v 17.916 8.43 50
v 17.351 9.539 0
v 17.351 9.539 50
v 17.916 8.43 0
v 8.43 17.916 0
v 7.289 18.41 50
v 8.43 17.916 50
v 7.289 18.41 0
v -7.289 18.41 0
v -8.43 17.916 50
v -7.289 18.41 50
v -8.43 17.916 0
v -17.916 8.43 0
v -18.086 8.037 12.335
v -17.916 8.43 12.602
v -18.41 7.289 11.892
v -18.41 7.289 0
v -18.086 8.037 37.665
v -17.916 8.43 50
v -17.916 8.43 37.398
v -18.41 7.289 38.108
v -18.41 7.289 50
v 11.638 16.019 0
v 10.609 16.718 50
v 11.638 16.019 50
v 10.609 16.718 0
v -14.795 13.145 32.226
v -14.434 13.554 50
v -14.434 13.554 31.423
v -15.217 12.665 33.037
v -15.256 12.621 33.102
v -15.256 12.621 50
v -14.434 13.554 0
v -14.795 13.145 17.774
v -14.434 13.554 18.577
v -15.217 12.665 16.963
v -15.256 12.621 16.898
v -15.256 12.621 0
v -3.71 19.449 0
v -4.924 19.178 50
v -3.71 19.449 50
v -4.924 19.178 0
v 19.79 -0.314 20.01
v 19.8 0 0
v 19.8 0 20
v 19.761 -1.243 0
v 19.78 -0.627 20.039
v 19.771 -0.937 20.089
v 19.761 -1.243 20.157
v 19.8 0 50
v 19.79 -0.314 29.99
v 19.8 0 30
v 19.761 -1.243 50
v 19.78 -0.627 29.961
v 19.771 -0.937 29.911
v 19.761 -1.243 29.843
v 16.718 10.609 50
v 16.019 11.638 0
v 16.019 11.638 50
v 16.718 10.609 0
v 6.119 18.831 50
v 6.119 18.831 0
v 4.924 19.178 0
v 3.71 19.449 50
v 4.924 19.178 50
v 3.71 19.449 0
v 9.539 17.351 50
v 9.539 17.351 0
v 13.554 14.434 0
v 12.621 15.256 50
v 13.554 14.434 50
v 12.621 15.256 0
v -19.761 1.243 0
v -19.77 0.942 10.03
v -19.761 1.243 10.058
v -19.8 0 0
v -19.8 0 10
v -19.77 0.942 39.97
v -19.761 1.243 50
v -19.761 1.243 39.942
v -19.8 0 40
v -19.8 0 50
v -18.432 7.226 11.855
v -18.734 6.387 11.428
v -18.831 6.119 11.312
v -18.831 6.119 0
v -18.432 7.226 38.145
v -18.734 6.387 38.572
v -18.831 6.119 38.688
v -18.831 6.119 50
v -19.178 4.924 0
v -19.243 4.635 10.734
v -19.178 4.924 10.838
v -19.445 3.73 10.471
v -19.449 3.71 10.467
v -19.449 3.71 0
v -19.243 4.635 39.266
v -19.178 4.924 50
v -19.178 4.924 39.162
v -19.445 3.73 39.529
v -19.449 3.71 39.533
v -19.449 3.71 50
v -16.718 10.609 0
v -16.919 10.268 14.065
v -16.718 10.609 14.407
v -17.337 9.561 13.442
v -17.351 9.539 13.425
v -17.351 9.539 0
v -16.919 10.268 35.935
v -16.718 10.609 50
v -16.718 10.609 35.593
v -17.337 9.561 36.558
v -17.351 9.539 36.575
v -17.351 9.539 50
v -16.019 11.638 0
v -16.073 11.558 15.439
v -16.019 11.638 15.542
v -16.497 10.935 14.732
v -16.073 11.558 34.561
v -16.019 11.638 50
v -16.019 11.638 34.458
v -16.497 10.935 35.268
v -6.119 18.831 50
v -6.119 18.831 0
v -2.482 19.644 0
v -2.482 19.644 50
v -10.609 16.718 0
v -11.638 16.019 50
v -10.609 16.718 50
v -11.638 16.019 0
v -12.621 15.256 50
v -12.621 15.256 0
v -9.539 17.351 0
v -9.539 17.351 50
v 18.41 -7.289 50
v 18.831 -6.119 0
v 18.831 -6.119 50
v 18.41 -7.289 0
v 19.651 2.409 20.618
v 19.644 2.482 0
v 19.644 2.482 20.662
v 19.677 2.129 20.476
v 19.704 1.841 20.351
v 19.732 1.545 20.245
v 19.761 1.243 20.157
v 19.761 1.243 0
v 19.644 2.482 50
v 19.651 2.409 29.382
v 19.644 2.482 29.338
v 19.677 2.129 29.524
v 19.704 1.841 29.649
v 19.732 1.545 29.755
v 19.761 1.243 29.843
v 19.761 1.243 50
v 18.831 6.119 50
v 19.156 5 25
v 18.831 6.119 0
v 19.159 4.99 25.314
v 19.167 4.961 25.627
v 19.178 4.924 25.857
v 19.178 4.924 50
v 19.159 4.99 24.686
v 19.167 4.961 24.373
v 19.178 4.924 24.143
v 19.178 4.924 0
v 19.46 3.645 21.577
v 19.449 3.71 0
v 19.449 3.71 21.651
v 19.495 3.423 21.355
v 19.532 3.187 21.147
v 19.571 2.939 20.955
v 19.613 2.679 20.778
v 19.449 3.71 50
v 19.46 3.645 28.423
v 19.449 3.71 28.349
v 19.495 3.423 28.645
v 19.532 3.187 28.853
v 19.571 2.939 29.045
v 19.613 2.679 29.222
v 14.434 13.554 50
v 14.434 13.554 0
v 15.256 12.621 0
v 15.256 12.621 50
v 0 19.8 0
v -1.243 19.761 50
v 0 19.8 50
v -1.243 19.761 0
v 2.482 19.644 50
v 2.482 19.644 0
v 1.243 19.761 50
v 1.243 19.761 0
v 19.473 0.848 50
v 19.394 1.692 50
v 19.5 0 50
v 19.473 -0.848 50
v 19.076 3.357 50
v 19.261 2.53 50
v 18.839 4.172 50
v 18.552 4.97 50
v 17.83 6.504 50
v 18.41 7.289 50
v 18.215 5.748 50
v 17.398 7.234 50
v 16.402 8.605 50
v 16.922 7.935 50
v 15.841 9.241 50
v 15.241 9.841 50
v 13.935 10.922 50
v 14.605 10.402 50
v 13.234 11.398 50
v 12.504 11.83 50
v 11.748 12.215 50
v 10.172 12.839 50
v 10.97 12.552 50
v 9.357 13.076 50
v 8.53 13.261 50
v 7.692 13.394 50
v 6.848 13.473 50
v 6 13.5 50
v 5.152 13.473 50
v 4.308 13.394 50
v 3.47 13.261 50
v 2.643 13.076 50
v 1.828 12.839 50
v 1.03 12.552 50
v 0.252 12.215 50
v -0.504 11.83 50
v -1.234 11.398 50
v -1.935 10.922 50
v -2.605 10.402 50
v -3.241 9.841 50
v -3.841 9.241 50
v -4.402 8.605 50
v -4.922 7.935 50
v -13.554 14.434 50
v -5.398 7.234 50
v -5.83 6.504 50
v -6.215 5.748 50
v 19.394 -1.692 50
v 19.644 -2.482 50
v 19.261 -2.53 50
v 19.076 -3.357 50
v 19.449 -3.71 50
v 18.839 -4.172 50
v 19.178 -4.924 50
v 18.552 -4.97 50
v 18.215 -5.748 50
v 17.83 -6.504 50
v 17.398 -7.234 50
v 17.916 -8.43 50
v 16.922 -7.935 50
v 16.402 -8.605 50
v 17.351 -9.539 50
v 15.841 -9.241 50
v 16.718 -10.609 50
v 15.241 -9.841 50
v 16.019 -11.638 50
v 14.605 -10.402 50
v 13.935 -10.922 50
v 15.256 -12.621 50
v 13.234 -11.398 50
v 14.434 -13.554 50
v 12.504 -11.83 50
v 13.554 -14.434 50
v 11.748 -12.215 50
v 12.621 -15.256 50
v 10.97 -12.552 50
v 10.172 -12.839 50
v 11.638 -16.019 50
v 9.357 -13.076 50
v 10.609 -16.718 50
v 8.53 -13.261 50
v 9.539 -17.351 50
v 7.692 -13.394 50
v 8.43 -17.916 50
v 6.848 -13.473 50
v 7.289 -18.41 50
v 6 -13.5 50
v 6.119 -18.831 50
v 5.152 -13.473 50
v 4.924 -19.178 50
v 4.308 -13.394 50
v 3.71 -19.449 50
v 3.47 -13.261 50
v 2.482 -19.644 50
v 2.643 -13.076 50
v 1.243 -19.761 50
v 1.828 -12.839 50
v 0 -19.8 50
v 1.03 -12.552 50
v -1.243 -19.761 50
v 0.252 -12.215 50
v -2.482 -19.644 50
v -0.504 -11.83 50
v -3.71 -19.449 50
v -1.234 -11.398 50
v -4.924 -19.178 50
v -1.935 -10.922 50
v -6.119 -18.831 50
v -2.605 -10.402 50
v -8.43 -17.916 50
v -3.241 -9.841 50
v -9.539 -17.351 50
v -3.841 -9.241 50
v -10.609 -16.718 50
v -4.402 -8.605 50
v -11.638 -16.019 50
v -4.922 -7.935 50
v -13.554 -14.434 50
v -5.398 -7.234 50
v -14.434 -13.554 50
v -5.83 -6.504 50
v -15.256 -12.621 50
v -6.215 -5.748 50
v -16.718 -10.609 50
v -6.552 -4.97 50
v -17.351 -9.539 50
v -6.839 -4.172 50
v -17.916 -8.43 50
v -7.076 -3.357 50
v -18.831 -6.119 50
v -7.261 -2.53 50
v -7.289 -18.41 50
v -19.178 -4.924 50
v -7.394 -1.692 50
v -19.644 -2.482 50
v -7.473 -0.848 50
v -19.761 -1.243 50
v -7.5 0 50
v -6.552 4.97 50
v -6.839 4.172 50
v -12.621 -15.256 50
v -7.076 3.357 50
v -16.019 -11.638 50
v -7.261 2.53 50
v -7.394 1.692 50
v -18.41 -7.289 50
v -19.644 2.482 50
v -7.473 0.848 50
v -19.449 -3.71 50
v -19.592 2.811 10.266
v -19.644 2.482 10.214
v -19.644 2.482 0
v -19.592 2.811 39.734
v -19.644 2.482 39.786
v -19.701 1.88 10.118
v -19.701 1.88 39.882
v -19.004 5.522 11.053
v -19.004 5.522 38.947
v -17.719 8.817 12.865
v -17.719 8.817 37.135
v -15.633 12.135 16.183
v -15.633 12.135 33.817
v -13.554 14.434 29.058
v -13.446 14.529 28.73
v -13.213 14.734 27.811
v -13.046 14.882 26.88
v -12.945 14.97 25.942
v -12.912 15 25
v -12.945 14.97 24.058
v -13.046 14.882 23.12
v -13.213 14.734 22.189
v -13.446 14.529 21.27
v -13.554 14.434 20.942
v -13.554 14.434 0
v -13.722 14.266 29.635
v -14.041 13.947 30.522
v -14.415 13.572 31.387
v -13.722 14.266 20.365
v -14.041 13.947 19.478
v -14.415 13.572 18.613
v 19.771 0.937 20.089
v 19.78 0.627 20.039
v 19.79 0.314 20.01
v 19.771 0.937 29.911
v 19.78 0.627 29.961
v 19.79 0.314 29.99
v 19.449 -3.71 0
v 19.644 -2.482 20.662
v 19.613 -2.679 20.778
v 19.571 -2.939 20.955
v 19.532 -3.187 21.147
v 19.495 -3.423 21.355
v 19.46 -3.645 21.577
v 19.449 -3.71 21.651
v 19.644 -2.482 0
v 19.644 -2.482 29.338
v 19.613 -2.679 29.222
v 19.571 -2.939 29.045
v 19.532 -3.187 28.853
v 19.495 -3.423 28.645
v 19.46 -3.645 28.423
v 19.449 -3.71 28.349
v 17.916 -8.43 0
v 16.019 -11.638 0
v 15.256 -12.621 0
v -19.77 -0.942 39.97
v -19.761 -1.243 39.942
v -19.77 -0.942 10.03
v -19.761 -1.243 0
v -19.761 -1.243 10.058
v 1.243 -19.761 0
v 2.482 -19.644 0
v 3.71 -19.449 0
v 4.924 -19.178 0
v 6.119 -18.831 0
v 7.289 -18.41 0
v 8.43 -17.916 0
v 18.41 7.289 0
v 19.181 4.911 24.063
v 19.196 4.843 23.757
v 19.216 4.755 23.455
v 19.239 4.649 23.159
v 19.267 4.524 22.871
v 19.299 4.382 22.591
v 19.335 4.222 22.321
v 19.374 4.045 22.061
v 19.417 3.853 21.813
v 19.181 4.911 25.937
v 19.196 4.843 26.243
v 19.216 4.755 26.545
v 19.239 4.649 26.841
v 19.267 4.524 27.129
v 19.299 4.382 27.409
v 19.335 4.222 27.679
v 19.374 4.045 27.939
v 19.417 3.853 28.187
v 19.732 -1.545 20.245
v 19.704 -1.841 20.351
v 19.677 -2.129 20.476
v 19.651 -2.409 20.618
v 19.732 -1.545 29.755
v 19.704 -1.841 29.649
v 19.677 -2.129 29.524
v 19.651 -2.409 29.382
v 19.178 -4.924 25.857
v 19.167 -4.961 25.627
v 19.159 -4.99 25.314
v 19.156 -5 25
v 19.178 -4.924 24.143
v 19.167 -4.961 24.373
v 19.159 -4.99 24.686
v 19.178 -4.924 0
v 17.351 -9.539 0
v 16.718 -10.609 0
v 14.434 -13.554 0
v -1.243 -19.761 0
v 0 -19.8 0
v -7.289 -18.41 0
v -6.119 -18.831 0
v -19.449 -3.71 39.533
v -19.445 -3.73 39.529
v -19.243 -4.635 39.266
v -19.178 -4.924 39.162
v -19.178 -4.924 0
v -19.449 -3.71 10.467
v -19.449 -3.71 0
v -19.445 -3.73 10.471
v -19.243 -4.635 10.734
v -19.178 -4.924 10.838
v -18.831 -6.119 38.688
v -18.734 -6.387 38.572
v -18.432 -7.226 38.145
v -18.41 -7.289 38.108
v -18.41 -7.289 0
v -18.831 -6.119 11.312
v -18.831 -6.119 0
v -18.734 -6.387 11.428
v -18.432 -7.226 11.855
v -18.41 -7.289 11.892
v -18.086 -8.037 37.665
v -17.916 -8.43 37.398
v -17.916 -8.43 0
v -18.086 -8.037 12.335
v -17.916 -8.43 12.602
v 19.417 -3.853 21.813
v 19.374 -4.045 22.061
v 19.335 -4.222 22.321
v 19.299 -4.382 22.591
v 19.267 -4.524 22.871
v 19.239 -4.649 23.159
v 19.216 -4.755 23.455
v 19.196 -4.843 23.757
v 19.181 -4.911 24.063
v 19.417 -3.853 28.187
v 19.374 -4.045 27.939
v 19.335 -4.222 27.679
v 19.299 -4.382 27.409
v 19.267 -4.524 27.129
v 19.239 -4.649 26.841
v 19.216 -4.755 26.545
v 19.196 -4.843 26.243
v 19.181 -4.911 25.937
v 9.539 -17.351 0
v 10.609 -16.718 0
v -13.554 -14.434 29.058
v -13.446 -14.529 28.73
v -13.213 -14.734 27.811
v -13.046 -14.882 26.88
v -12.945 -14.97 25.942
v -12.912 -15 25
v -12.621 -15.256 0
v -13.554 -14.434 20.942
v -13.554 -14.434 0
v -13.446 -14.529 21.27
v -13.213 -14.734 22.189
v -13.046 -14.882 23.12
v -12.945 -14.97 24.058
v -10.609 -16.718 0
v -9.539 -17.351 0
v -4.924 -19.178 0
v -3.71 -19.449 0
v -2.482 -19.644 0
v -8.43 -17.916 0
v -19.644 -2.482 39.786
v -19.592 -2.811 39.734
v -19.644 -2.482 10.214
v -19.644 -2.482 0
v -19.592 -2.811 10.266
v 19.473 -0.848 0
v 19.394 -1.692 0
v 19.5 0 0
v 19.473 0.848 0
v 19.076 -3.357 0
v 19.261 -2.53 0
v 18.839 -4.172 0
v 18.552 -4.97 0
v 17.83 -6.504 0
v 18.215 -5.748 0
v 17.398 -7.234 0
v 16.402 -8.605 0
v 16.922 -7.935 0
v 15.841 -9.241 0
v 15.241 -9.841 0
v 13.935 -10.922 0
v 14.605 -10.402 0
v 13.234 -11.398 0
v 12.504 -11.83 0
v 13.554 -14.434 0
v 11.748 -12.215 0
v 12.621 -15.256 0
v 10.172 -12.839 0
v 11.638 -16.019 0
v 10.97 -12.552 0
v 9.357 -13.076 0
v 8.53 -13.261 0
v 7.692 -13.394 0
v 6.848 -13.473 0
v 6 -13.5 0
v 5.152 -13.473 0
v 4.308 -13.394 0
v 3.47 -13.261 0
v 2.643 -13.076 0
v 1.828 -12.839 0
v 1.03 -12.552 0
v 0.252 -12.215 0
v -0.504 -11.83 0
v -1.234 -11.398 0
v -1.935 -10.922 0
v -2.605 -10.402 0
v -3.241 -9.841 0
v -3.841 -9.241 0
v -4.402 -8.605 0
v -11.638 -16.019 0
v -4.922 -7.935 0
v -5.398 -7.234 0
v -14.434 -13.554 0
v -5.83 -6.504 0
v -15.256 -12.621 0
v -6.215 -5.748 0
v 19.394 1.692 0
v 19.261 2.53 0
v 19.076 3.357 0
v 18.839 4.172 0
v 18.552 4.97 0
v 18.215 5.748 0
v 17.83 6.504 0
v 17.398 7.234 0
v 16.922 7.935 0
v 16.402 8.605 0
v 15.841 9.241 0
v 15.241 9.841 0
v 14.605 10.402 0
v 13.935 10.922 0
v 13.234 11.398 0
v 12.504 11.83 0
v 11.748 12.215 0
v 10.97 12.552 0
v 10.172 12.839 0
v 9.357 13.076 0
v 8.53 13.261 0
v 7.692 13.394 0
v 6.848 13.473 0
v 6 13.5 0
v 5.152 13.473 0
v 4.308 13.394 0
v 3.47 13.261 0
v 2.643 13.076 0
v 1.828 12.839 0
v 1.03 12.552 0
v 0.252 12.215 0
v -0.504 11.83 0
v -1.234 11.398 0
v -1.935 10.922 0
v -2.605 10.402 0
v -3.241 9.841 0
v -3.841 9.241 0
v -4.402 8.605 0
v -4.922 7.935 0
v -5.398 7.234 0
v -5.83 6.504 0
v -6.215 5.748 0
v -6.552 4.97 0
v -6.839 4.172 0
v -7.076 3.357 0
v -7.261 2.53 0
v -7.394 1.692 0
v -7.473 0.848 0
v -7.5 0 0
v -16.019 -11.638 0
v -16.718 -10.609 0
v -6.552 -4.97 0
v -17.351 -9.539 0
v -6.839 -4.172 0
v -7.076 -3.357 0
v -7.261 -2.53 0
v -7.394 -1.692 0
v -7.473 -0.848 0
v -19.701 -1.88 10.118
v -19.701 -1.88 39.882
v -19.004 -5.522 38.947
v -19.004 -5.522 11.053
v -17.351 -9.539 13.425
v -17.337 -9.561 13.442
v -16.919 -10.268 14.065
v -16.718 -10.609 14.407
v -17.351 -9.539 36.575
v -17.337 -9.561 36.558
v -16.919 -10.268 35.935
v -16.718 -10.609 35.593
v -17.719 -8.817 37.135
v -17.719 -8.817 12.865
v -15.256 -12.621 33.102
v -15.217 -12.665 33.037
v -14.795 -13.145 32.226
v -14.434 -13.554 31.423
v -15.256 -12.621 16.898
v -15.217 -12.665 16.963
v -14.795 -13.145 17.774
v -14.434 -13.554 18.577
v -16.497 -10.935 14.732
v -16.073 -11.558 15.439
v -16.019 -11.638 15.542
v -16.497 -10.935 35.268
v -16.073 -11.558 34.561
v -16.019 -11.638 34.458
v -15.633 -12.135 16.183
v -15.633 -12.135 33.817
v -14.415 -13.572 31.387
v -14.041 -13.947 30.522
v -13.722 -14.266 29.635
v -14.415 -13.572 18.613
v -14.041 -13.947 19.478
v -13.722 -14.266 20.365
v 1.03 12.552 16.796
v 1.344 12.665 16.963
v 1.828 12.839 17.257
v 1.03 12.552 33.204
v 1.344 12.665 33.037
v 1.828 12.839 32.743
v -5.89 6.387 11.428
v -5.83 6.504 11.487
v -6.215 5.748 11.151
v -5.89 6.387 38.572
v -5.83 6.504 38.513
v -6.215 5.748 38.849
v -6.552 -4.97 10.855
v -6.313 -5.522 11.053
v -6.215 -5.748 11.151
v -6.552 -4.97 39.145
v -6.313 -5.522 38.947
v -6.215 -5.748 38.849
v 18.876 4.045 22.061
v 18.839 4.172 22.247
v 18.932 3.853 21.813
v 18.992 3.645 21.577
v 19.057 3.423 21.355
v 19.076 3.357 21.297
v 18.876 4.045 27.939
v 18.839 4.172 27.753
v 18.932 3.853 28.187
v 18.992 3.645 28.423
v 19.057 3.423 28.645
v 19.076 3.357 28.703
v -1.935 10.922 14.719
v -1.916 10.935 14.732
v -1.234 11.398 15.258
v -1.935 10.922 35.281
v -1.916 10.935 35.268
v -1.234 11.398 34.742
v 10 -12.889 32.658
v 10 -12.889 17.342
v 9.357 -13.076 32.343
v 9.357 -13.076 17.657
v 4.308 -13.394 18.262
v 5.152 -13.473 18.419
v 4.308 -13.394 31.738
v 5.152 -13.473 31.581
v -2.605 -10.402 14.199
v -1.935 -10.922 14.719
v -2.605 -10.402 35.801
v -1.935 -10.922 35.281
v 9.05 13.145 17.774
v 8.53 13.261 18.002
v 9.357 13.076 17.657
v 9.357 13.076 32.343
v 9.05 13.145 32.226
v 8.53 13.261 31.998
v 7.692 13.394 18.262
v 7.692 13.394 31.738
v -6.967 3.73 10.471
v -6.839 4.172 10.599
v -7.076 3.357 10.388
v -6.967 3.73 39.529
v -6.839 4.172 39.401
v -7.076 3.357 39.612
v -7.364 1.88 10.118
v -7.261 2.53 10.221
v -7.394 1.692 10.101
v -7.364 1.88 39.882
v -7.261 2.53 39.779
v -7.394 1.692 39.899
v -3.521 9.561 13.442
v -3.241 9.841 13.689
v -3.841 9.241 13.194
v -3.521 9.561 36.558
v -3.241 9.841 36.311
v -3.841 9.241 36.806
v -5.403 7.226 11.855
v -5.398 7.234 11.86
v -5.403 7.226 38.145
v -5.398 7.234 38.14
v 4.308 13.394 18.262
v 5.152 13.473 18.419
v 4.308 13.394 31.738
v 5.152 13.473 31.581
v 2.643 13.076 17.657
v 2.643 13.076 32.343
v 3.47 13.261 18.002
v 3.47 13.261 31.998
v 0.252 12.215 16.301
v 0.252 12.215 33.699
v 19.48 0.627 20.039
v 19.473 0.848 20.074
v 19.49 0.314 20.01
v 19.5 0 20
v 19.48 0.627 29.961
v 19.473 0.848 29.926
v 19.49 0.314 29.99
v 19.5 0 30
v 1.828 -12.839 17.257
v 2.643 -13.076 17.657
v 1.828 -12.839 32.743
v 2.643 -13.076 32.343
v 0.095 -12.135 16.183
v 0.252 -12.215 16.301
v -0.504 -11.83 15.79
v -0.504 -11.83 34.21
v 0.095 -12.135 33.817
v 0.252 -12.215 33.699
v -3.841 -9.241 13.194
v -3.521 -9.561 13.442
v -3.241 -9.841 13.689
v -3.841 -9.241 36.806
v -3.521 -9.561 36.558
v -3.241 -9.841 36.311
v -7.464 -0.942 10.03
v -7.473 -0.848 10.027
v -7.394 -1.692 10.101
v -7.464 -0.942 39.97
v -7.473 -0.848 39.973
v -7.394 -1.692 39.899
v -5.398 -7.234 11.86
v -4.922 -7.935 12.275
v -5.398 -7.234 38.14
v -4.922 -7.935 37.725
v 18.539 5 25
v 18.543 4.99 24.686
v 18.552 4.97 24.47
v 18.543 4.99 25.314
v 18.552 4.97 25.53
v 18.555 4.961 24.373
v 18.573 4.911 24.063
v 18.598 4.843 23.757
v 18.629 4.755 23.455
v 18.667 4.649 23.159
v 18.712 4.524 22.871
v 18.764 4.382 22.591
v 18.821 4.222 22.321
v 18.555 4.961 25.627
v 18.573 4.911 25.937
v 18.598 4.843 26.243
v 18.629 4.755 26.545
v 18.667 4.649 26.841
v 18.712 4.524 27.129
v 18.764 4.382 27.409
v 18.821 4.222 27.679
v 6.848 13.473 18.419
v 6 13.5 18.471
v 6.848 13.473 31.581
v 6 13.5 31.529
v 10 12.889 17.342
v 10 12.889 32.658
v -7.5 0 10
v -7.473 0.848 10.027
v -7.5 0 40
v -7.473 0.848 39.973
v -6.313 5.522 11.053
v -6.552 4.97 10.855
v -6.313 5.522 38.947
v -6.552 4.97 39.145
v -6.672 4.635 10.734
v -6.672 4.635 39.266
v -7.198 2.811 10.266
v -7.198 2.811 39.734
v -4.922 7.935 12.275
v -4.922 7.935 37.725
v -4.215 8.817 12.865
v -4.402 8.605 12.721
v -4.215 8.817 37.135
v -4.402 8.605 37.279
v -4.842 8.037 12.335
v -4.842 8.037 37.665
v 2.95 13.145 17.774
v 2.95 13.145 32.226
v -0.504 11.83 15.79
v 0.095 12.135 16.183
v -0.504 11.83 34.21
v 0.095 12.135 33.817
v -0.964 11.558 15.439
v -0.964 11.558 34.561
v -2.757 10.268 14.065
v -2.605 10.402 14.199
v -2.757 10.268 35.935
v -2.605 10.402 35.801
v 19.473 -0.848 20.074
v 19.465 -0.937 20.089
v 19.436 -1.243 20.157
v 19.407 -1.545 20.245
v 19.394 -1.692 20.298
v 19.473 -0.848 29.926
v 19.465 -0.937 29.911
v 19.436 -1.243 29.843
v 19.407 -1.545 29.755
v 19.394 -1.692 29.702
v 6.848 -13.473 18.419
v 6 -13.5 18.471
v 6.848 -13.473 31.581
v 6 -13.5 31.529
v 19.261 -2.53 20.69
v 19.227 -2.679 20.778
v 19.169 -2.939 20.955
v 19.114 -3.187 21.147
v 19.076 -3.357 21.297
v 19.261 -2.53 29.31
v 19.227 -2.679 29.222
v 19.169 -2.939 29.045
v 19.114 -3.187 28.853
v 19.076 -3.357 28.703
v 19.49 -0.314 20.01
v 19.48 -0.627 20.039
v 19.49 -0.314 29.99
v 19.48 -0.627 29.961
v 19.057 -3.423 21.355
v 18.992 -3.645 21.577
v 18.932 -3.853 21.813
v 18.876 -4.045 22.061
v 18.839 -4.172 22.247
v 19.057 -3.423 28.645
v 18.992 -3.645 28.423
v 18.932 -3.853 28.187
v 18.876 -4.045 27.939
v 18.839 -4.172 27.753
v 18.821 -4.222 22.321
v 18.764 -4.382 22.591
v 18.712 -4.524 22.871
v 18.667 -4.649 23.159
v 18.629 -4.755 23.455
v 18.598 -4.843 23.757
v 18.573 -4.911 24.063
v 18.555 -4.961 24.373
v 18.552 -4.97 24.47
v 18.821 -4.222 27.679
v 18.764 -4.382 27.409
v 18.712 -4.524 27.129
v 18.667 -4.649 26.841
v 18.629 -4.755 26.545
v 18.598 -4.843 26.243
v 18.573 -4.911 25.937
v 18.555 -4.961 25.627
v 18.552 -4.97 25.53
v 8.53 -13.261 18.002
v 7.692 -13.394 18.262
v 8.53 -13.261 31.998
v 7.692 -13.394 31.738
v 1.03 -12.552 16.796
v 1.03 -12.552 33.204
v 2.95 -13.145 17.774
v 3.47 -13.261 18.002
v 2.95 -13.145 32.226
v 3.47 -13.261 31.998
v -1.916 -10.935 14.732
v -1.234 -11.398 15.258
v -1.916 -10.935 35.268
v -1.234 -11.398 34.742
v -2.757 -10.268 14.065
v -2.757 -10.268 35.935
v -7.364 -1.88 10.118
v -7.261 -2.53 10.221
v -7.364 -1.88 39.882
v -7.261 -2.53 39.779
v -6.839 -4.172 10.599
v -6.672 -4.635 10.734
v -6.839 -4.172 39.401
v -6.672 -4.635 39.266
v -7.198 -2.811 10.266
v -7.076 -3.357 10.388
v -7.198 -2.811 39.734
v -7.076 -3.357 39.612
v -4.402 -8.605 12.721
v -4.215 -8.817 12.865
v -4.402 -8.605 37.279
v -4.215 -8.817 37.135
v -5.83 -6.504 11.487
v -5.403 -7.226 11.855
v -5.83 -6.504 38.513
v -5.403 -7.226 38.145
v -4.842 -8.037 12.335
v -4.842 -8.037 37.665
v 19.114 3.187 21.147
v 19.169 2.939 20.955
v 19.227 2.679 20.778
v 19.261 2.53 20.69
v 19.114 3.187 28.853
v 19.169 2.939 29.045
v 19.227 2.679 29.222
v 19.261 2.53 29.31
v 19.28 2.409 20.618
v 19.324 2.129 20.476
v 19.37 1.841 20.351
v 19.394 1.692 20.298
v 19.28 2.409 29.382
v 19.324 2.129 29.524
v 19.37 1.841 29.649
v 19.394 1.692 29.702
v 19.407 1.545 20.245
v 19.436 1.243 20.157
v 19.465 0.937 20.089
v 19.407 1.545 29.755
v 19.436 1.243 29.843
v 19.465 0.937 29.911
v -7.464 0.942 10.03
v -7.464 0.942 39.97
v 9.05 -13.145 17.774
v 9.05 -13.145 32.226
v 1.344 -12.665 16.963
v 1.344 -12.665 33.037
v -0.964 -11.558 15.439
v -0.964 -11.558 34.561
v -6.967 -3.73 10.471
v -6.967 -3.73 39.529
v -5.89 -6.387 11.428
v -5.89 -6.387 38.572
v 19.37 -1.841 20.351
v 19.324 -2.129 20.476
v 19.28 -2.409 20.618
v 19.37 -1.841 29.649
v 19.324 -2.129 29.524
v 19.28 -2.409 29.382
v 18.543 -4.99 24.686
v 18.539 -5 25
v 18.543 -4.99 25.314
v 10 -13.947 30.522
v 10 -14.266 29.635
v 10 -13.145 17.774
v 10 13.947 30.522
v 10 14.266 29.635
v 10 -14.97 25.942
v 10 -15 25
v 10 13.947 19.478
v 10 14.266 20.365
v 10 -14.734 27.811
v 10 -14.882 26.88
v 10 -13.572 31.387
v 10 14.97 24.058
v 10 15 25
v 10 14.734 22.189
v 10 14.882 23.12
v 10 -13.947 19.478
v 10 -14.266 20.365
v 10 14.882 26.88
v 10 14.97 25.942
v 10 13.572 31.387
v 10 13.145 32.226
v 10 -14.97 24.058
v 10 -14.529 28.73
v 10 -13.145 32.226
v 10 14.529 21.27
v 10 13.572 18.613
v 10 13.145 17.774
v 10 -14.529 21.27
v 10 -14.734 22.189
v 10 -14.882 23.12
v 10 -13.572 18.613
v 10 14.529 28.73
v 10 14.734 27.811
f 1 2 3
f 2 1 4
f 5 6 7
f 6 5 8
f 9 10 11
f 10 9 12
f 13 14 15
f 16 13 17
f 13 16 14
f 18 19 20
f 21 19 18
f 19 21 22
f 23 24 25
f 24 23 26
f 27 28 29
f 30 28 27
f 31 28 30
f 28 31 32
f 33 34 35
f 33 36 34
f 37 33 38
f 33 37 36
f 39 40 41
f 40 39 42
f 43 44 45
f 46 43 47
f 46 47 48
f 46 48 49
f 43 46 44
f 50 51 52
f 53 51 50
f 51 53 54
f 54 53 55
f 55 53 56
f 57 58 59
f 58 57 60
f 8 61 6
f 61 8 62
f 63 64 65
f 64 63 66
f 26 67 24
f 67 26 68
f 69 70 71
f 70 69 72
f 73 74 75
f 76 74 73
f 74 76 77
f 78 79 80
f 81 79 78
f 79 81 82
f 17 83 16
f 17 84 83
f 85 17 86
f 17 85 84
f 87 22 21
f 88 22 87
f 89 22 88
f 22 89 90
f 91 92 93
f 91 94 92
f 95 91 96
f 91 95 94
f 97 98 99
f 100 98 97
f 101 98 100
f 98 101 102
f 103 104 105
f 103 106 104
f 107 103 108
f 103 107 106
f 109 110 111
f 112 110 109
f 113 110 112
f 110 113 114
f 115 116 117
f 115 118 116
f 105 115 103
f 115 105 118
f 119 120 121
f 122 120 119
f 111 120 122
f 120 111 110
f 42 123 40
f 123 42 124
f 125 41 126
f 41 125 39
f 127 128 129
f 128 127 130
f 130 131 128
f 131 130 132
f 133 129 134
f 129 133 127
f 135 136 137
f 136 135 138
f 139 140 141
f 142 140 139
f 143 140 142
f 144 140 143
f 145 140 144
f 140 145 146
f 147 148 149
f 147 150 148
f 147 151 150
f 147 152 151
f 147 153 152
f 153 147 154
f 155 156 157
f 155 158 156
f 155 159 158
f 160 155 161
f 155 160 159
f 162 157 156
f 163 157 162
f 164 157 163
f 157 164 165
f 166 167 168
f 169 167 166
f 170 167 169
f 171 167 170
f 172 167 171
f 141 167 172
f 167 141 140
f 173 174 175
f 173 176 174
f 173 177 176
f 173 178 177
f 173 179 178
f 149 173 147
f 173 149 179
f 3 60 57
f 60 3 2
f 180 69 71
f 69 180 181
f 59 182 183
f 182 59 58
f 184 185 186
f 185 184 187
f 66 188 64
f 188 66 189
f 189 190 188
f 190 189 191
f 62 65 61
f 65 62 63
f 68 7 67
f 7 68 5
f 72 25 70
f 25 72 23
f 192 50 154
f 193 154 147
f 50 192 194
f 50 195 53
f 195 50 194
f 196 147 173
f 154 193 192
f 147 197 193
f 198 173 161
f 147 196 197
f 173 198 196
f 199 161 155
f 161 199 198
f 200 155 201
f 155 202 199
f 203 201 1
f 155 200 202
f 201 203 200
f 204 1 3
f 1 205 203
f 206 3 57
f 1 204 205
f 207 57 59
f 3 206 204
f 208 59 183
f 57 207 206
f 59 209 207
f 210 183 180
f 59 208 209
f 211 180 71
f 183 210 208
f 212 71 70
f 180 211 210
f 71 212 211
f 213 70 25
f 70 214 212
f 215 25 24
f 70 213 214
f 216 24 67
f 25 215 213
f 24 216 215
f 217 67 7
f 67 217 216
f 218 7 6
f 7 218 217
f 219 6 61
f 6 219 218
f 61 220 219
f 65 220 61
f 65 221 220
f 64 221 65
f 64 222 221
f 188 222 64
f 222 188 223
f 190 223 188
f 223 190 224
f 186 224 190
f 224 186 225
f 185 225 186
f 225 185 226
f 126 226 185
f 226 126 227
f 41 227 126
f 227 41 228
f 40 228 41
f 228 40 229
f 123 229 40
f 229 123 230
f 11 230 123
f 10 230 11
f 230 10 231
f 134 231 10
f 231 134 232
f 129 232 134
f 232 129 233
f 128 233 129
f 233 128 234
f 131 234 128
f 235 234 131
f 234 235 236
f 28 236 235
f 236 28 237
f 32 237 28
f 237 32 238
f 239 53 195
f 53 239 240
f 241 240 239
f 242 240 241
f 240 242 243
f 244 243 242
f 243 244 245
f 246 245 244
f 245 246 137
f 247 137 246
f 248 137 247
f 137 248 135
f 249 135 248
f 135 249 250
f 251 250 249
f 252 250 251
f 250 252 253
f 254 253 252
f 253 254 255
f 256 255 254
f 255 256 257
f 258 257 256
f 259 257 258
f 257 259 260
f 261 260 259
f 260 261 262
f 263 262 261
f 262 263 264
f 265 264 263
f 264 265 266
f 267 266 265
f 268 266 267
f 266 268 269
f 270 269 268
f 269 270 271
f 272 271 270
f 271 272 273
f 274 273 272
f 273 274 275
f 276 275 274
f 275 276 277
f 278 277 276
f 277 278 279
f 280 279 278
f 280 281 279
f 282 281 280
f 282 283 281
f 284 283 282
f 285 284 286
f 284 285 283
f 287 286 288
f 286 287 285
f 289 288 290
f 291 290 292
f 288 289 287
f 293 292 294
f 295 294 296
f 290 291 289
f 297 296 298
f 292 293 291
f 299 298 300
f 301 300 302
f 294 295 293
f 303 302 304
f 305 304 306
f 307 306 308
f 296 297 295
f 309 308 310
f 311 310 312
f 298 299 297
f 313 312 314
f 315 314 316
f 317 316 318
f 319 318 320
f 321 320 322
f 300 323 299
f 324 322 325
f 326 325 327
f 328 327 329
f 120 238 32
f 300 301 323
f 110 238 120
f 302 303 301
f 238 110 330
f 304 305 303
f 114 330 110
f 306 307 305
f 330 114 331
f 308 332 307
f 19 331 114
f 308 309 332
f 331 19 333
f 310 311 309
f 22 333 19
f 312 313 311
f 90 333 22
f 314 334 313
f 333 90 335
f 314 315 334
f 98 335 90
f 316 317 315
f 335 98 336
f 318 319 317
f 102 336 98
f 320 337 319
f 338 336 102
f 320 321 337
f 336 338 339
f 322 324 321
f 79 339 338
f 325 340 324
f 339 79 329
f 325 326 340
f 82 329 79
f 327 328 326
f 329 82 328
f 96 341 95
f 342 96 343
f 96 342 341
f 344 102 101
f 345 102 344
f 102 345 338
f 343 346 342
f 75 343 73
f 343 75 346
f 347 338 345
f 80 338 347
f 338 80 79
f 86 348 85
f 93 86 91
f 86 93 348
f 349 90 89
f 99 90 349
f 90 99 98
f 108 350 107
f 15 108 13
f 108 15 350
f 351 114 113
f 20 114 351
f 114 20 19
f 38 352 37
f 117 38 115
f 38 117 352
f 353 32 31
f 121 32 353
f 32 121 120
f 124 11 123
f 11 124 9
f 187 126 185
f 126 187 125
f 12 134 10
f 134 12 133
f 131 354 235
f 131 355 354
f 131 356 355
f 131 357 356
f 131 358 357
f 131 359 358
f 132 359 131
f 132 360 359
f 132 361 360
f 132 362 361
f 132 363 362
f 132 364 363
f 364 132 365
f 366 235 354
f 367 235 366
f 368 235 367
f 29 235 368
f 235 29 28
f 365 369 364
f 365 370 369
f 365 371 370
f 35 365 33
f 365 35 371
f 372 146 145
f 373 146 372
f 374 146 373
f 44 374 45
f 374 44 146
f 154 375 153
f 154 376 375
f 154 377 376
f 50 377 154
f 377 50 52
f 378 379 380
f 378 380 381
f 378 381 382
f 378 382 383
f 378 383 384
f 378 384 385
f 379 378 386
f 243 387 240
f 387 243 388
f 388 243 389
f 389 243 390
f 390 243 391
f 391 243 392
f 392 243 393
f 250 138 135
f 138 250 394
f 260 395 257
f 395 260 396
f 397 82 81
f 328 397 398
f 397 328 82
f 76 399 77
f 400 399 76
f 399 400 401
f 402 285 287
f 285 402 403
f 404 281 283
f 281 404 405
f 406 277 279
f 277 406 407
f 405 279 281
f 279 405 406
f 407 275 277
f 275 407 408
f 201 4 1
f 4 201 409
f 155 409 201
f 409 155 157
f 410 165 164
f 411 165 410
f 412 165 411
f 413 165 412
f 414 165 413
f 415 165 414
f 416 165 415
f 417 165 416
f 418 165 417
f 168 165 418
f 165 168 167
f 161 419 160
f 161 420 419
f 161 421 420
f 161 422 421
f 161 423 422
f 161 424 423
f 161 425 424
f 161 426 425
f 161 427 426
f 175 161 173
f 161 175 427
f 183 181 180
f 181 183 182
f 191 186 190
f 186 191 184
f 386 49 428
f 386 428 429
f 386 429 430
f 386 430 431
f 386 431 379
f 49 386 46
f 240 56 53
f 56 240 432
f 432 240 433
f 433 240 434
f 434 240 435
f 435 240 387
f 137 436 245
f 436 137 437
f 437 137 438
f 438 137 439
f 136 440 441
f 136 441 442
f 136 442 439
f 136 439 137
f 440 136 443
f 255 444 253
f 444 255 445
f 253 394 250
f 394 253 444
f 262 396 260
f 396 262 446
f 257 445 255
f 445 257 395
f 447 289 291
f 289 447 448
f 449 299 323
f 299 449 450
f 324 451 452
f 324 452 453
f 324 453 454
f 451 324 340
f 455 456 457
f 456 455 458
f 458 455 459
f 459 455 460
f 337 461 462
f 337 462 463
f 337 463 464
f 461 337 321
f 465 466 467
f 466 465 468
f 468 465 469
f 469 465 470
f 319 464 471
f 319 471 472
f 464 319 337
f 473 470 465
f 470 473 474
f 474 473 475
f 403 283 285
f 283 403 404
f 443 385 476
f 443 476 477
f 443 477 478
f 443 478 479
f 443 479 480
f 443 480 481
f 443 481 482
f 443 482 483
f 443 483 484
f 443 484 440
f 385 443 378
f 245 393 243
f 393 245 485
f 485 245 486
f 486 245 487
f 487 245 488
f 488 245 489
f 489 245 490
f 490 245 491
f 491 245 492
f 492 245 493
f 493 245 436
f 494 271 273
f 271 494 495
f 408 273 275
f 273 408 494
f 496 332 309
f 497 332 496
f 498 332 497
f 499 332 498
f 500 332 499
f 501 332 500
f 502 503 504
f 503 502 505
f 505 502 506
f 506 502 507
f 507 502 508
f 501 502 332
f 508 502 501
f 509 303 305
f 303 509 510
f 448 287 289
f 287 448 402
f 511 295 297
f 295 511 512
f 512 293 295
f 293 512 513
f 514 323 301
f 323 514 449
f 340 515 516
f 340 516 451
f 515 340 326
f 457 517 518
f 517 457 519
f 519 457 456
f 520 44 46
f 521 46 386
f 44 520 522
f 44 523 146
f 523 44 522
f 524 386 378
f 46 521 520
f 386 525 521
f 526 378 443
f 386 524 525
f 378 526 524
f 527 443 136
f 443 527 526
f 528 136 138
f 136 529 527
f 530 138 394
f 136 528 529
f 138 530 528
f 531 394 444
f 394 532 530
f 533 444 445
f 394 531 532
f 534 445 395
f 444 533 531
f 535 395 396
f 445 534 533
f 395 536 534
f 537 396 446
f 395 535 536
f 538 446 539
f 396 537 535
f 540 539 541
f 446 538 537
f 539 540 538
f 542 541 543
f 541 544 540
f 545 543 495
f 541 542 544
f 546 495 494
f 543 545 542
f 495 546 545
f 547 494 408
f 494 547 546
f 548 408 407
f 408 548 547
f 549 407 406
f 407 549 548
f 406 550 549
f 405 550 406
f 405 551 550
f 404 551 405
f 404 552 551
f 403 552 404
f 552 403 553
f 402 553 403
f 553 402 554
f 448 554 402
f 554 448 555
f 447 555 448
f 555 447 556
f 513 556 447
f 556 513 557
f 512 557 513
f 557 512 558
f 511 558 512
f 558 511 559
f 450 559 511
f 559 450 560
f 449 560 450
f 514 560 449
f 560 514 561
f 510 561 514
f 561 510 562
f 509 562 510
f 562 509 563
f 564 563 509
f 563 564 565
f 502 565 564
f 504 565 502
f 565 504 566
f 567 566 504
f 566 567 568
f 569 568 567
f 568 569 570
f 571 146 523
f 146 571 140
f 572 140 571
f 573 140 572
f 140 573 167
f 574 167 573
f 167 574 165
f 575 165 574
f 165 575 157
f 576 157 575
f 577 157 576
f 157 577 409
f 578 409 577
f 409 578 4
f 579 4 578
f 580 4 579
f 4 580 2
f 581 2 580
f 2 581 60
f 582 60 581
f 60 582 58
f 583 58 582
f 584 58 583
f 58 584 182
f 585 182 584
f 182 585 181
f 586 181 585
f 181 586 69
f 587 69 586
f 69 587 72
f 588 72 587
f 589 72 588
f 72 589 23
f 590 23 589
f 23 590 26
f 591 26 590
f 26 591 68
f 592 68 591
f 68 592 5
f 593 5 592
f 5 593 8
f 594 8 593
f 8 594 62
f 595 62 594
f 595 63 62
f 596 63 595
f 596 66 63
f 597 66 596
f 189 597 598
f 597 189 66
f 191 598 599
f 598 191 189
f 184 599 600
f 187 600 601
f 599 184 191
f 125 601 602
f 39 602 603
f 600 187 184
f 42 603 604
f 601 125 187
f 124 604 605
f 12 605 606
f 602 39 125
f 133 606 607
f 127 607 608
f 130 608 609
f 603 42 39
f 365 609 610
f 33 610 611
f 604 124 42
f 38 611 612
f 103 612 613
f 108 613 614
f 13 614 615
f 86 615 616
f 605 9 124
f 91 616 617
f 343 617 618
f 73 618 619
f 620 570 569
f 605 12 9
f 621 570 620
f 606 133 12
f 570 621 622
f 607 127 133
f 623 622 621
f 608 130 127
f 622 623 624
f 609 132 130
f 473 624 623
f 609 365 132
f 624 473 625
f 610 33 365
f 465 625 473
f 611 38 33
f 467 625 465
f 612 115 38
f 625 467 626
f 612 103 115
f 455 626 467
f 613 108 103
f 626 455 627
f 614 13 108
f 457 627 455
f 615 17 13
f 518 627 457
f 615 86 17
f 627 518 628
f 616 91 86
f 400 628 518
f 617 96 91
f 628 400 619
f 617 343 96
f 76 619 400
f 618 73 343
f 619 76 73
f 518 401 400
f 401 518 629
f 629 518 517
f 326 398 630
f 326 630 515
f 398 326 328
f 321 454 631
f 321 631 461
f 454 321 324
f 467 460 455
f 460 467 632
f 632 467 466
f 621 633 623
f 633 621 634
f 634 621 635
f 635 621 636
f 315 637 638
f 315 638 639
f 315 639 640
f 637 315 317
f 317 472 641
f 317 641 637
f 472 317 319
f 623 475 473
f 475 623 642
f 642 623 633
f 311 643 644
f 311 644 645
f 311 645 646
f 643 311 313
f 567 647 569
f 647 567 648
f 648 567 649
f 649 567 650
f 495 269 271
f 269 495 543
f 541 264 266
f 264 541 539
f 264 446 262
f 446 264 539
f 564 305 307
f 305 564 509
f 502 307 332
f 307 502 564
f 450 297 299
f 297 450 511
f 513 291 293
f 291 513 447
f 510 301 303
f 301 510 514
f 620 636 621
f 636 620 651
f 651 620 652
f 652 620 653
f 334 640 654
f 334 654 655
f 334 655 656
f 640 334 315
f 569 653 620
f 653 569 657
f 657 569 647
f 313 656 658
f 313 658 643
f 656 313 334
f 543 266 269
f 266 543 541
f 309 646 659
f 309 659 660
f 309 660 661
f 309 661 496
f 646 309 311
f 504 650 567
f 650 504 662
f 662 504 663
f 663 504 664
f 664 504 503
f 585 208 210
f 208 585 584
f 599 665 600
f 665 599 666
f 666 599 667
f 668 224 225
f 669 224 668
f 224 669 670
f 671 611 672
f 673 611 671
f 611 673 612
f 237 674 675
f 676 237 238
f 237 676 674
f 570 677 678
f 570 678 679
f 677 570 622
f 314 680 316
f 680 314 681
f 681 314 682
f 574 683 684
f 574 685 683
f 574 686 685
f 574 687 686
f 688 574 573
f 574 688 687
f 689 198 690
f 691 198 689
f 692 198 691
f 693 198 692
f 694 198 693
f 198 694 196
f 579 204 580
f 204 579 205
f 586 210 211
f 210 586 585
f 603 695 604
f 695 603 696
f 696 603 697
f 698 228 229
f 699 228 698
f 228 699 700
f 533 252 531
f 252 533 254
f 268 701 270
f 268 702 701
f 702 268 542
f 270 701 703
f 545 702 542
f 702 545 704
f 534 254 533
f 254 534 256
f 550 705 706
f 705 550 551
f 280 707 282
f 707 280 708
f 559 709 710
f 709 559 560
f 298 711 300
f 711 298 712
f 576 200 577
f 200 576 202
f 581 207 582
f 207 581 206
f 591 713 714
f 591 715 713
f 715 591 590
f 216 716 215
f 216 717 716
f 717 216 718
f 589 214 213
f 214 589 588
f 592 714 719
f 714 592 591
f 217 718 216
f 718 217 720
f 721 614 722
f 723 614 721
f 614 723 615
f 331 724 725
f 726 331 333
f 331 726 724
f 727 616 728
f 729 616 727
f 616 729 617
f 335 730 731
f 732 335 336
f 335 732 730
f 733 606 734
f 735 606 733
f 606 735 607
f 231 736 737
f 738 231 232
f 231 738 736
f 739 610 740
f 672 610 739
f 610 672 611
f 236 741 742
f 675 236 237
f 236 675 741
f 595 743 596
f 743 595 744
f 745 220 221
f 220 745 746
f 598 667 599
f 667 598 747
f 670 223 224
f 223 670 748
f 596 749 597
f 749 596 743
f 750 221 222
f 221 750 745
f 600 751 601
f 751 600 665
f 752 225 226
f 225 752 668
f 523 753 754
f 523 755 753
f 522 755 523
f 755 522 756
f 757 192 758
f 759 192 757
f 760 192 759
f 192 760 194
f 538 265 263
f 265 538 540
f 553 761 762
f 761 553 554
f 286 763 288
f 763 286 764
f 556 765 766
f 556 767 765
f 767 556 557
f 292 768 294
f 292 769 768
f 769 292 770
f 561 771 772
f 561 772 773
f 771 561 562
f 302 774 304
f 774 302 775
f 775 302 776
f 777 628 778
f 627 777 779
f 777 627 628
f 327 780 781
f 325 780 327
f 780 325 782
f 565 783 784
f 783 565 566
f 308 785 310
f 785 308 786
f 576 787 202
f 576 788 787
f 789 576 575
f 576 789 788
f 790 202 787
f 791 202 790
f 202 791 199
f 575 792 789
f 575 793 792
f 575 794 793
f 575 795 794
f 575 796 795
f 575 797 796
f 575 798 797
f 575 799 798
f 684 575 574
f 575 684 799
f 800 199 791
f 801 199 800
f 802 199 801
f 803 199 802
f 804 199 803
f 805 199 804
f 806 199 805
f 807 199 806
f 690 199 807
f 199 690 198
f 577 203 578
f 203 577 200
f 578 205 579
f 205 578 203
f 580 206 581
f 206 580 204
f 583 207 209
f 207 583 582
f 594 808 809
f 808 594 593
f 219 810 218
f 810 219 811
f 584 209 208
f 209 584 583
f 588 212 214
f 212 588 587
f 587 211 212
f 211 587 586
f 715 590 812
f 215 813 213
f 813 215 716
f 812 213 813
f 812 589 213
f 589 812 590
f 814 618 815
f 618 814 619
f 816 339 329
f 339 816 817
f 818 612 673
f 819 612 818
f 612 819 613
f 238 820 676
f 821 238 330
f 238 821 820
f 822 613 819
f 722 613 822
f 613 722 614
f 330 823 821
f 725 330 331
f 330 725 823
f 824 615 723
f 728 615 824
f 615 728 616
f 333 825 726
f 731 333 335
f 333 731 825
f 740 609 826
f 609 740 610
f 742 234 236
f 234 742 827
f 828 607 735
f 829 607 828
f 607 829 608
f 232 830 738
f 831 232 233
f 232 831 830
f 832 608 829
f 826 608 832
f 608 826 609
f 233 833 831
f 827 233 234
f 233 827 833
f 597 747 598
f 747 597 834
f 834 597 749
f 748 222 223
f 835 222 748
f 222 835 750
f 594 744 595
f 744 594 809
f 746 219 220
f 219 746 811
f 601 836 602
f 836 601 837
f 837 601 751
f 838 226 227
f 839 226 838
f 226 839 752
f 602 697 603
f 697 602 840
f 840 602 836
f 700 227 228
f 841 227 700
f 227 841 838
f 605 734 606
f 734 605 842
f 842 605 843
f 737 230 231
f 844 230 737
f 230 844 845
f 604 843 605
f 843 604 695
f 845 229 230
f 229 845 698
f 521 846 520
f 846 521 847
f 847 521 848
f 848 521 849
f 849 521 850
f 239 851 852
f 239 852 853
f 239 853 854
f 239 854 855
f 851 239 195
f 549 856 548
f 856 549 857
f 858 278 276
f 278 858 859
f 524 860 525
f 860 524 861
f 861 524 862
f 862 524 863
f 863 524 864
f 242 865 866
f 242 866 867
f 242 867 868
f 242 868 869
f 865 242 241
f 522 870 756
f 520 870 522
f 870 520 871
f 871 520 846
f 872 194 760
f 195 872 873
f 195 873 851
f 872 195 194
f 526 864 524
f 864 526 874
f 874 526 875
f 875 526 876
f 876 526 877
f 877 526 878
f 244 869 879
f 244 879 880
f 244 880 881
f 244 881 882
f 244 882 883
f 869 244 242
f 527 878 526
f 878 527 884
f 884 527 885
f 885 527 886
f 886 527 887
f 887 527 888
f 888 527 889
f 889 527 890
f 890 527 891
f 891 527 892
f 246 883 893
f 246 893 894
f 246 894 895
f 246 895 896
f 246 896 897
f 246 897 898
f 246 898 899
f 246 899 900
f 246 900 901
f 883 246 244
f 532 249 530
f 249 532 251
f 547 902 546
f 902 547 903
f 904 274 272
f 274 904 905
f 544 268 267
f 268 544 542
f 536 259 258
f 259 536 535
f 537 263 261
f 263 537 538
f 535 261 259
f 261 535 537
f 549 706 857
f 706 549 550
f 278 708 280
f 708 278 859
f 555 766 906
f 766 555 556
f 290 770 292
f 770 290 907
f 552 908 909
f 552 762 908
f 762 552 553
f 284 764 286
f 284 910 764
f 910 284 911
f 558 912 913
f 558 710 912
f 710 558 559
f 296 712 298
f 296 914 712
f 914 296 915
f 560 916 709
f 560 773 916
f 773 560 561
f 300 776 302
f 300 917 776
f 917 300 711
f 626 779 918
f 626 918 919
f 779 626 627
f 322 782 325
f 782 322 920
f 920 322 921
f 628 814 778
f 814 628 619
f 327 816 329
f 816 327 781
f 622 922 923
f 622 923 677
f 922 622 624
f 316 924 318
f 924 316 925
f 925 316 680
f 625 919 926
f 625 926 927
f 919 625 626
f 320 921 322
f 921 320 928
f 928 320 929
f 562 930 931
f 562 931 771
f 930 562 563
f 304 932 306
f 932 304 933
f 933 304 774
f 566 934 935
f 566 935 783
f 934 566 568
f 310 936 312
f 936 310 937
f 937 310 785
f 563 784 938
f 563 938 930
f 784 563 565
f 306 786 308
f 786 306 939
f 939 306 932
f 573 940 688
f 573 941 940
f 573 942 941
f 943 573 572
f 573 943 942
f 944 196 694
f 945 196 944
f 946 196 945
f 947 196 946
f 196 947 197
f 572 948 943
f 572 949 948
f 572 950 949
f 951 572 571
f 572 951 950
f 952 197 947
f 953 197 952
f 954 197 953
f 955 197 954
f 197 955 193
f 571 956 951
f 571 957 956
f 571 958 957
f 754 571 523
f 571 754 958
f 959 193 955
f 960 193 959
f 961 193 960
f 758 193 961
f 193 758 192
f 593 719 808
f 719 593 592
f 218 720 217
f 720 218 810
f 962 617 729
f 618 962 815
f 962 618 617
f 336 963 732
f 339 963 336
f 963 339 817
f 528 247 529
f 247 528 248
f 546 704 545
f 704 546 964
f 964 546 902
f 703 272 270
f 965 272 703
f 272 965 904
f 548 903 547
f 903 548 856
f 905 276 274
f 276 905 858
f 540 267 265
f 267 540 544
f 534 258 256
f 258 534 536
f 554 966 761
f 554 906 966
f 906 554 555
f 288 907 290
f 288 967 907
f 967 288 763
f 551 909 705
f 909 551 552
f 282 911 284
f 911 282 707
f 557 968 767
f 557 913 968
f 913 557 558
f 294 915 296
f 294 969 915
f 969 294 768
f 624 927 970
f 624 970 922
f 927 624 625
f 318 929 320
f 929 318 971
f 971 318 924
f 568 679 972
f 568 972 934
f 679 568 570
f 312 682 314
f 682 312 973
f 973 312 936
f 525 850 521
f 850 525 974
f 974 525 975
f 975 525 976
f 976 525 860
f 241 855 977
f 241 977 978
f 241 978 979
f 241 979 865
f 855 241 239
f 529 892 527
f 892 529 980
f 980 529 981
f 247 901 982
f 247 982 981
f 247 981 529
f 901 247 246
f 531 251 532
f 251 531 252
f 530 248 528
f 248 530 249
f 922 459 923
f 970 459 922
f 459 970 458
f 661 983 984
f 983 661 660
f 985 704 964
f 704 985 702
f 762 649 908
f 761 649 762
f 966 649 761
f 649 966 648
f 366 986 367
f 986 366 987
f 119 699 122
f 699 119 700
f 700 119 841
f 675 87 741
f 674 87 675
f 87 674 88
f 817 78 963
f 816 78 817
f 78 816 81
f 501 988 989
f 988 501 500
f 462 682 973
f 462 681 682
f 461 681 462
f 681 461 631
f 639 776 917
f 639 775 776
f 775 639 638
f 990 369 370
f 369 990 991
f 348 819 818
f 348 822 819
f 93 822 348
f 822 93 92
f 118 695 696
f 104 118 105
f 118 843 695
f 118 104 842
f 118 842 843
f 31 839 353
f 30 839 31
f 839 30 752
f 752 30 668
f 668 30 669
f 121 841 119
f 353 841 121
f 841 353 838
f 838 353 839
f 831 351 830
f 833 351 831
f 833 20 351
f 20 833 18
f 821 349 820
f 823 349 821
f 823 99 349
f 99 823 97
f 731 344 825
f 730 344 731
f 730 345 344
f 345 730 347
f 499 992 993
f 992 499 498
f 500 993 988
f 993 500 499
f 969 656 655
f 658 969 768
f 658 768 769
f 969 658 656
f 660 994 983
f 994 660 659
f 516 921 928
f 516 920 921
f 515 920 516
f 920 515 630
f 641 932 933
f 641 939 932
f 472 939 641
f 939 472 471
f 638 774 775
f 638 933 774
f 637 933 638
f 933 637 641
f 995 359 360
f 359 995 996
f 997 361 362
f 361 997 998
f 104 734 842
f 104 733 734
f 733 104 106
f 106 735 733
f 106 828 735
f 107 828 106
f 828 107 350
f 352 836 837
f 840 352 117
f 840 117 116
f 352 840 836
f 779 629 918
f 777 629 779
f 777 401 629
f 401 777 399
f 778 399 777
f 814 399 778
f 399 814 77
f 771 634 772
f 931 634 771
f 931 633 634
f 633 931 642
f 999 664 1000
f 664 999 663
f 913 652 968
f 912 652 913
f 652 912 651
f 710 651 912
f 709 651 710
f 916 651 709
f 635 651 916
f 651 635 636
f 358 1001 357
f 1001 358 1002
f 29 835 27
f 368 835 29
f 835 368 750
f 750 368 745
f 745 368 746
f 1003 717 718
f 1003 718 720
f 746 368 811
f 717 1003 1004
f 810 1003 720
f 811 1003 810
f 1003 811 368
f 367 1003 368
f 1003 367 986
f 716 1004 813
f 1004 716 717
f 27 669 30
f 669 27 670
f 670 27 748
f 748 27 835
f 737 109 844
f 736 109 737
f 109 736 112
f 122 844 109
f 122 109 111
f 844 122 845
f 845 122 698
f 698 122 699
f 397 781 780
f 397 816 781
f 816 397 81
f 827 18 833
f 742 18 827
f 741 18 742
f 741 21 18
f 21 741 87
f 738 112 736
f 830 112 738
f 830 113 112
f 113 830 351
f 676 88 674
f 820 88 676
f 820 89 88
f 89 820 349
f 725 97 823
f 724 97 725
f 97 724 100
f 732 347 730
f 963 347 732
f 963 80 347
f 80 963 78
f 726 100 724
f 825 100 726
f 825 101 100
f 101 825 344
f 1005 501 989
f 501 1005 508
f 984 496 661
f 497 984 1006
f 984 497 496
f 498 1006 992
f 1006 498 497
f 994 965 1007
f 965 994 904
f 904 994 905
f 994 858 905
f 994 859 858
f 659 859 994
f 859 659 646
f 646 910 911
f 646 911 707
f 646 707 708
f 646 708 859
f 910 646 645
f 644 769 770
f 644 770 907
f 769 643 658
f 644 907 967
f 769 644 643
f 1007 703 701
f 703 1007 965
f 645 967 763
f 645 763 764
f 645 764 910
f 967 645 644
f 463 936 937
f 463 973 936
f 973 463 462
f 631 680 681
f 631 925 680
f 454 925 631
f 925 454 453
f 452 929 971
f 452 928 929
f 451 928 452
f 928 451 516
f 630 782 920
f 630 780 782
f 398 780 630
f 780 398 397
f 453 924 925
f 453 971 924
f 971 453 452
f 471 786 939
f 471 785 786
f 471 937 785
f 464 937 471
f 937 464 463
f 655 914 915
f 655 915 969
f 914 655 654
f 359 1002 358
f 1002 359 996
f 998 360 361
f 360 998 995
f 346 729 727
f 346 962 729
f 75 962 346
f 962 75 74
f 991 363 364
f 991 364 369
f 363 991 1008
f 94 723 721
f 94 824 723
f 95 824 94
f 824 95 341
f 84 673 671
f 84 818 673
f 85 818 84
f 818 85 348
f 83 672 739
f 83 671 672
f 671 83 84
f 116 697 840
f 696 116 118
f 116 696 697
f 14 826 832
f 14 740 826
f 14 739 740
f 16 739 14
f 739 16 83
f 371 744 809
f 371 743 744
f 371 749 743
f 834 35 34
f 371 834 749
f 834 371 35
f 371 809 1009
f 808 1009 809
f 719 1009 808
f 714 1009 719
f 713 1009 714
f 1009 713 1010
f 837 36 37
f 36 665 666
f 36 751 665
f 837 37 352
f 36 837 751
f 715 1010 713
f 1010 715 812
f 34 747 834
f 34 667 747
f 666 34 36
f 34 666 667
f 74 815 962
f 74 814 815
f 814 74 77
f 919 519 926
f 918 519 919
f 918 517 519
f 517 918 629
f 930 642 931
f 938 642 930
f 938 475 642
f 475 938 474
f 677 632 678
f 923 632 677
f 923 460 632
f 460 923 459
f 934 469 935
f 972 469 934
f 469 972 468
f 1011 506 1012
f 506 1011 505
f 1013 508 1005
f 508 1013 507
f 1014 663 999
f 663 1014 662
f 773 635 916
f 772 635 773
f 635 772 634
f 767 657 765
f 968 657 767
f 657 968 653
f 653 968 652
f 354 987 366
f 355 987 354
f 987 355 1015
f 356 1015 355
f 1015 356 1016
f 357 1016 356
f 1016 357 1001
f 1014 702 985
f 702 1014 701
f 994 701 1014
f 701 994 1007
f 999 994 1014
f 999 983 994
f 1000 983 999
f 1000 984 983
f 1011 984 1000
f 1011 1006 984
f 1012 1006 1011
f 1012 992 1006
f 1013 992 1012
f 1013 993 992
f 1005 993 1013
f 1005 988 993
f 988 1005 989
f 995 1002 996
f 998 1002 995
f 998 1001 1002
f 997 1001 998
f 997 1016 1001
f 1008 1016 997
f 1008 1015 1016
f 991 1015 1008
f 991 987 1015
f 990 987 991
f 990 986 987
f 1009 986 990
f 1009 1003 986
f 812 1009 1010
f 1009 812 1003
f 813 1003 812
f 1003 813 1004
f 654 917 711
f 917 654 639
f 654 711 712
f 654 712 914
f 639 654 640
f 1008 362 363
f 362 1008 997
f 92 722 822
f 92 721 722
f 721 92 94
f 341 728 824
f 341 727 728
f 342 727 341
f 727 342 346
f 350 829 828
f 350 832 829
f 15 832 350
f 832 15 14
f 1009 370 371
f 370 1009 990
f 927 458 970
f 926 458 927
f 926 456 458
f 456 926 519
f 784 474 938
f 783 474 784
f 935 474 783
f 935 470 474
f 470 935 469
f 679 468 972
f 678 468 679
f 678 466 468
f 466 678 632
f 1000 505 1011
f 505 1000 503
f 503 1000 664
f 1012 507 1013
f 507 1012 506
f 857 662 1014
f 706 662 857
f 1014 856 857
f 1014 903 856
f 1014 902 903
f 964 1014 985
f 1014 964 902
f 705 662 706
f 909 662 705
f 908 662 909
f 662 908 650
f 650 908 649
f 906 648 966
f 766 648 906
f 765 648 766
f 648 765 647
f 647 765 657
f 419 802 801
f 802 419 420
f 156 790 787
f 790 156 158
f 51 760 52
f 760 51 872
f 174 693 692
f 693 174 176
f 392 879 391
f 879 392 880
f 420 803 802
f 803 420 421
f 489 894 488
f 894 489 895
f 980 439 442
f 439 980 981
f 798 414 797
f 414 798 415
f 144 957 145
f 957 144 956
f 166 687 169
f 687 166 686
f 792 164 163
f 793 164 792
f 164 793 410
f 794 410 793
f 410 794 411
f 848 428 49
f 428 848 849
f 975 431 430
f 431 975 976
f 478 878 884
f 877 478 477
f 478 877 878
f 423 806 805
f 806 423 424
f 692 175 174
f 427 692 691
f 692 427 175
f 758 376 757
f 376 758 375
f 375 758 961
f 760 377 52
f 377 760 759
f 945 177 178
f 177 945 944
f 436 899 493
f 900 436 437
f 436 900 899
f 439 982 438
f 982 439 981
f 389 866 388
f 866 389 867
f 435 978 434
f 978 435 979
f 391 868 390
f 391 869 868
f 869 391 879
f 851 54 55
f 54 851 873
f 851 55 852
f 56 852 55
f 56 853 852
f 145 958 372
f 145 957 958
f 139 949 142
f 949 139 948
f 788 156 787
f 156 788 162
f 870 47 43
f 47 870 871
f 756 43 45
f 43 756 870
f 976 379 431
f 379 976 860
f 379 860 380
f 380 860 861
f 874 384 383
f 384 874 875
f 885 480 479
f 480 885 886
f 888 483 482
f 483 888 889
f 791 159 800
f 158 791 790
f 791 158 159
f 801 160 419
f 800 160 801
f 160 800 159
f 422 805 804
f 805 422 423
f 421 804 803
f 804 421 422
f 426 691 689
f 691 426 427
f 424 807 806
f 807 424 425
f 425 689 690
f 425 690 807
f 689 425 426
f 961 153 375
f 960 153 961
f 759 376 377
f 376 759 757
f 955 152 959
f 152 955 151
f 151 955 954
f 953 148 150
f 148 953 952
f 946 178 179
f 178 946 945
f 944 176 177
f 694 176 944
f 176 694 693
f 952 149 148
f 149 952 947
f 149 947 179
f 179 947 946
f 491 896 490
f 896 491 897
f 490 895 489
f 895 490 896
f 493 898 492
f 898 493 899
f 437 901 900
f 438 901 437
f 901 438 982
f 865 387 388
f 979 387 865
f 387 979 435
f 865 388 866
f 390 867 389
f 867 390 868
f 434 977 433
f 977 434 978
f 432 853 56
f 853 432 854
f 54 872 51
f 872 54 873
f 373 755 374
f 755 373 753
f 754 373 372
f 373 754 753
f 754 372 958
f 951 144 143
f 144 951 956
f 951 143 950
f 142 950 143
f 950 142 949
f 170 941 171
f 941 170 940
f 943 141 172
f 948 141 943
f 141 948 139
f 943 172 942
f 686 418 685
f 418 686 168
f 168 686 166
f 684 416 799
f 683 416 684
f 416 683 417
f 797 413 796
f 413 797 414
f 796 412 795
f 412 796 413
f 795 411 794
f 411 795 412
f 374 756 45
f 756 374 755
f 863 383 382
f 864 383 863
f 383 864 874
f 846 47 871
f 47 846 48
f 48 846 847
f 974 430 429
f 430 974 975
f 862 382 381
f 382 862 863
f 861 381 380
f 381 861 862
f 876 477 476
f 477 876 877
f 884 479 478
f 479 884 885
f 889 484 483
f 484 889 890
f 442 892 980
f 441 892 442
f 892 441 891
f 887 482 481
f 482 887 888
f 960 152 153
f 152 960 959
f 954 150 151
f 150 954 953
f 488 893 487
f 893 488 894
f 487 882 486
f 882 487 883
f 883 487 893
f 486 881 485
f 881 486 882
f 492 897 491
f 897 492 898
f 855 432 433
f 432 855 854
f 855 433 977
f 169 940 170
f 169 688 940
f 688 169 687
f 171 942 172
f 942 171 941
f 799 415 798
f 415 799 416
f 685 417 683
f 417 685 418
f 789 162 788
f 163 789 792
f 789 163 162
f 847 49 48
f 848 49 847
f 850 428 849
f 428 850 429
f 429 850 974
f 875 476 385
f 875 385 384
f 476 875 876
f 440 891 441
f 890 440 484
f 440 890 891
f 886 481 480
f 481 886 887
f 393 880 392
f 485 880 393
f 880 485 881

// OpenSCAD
$fn=100;

difference(){
cylinder (50,19.8,19.8);
translate([6,0,-5]){
    cylinder(80,27/2, 27/2);
    }
translate([-30,0,25]){
    rotate([90,0,90]){
        cylinder(40,15,15);
    }
}

translate([0,0,25]){
    rotate([90,0,90]){
        cylinder(40,5,5);
    }
}
}
